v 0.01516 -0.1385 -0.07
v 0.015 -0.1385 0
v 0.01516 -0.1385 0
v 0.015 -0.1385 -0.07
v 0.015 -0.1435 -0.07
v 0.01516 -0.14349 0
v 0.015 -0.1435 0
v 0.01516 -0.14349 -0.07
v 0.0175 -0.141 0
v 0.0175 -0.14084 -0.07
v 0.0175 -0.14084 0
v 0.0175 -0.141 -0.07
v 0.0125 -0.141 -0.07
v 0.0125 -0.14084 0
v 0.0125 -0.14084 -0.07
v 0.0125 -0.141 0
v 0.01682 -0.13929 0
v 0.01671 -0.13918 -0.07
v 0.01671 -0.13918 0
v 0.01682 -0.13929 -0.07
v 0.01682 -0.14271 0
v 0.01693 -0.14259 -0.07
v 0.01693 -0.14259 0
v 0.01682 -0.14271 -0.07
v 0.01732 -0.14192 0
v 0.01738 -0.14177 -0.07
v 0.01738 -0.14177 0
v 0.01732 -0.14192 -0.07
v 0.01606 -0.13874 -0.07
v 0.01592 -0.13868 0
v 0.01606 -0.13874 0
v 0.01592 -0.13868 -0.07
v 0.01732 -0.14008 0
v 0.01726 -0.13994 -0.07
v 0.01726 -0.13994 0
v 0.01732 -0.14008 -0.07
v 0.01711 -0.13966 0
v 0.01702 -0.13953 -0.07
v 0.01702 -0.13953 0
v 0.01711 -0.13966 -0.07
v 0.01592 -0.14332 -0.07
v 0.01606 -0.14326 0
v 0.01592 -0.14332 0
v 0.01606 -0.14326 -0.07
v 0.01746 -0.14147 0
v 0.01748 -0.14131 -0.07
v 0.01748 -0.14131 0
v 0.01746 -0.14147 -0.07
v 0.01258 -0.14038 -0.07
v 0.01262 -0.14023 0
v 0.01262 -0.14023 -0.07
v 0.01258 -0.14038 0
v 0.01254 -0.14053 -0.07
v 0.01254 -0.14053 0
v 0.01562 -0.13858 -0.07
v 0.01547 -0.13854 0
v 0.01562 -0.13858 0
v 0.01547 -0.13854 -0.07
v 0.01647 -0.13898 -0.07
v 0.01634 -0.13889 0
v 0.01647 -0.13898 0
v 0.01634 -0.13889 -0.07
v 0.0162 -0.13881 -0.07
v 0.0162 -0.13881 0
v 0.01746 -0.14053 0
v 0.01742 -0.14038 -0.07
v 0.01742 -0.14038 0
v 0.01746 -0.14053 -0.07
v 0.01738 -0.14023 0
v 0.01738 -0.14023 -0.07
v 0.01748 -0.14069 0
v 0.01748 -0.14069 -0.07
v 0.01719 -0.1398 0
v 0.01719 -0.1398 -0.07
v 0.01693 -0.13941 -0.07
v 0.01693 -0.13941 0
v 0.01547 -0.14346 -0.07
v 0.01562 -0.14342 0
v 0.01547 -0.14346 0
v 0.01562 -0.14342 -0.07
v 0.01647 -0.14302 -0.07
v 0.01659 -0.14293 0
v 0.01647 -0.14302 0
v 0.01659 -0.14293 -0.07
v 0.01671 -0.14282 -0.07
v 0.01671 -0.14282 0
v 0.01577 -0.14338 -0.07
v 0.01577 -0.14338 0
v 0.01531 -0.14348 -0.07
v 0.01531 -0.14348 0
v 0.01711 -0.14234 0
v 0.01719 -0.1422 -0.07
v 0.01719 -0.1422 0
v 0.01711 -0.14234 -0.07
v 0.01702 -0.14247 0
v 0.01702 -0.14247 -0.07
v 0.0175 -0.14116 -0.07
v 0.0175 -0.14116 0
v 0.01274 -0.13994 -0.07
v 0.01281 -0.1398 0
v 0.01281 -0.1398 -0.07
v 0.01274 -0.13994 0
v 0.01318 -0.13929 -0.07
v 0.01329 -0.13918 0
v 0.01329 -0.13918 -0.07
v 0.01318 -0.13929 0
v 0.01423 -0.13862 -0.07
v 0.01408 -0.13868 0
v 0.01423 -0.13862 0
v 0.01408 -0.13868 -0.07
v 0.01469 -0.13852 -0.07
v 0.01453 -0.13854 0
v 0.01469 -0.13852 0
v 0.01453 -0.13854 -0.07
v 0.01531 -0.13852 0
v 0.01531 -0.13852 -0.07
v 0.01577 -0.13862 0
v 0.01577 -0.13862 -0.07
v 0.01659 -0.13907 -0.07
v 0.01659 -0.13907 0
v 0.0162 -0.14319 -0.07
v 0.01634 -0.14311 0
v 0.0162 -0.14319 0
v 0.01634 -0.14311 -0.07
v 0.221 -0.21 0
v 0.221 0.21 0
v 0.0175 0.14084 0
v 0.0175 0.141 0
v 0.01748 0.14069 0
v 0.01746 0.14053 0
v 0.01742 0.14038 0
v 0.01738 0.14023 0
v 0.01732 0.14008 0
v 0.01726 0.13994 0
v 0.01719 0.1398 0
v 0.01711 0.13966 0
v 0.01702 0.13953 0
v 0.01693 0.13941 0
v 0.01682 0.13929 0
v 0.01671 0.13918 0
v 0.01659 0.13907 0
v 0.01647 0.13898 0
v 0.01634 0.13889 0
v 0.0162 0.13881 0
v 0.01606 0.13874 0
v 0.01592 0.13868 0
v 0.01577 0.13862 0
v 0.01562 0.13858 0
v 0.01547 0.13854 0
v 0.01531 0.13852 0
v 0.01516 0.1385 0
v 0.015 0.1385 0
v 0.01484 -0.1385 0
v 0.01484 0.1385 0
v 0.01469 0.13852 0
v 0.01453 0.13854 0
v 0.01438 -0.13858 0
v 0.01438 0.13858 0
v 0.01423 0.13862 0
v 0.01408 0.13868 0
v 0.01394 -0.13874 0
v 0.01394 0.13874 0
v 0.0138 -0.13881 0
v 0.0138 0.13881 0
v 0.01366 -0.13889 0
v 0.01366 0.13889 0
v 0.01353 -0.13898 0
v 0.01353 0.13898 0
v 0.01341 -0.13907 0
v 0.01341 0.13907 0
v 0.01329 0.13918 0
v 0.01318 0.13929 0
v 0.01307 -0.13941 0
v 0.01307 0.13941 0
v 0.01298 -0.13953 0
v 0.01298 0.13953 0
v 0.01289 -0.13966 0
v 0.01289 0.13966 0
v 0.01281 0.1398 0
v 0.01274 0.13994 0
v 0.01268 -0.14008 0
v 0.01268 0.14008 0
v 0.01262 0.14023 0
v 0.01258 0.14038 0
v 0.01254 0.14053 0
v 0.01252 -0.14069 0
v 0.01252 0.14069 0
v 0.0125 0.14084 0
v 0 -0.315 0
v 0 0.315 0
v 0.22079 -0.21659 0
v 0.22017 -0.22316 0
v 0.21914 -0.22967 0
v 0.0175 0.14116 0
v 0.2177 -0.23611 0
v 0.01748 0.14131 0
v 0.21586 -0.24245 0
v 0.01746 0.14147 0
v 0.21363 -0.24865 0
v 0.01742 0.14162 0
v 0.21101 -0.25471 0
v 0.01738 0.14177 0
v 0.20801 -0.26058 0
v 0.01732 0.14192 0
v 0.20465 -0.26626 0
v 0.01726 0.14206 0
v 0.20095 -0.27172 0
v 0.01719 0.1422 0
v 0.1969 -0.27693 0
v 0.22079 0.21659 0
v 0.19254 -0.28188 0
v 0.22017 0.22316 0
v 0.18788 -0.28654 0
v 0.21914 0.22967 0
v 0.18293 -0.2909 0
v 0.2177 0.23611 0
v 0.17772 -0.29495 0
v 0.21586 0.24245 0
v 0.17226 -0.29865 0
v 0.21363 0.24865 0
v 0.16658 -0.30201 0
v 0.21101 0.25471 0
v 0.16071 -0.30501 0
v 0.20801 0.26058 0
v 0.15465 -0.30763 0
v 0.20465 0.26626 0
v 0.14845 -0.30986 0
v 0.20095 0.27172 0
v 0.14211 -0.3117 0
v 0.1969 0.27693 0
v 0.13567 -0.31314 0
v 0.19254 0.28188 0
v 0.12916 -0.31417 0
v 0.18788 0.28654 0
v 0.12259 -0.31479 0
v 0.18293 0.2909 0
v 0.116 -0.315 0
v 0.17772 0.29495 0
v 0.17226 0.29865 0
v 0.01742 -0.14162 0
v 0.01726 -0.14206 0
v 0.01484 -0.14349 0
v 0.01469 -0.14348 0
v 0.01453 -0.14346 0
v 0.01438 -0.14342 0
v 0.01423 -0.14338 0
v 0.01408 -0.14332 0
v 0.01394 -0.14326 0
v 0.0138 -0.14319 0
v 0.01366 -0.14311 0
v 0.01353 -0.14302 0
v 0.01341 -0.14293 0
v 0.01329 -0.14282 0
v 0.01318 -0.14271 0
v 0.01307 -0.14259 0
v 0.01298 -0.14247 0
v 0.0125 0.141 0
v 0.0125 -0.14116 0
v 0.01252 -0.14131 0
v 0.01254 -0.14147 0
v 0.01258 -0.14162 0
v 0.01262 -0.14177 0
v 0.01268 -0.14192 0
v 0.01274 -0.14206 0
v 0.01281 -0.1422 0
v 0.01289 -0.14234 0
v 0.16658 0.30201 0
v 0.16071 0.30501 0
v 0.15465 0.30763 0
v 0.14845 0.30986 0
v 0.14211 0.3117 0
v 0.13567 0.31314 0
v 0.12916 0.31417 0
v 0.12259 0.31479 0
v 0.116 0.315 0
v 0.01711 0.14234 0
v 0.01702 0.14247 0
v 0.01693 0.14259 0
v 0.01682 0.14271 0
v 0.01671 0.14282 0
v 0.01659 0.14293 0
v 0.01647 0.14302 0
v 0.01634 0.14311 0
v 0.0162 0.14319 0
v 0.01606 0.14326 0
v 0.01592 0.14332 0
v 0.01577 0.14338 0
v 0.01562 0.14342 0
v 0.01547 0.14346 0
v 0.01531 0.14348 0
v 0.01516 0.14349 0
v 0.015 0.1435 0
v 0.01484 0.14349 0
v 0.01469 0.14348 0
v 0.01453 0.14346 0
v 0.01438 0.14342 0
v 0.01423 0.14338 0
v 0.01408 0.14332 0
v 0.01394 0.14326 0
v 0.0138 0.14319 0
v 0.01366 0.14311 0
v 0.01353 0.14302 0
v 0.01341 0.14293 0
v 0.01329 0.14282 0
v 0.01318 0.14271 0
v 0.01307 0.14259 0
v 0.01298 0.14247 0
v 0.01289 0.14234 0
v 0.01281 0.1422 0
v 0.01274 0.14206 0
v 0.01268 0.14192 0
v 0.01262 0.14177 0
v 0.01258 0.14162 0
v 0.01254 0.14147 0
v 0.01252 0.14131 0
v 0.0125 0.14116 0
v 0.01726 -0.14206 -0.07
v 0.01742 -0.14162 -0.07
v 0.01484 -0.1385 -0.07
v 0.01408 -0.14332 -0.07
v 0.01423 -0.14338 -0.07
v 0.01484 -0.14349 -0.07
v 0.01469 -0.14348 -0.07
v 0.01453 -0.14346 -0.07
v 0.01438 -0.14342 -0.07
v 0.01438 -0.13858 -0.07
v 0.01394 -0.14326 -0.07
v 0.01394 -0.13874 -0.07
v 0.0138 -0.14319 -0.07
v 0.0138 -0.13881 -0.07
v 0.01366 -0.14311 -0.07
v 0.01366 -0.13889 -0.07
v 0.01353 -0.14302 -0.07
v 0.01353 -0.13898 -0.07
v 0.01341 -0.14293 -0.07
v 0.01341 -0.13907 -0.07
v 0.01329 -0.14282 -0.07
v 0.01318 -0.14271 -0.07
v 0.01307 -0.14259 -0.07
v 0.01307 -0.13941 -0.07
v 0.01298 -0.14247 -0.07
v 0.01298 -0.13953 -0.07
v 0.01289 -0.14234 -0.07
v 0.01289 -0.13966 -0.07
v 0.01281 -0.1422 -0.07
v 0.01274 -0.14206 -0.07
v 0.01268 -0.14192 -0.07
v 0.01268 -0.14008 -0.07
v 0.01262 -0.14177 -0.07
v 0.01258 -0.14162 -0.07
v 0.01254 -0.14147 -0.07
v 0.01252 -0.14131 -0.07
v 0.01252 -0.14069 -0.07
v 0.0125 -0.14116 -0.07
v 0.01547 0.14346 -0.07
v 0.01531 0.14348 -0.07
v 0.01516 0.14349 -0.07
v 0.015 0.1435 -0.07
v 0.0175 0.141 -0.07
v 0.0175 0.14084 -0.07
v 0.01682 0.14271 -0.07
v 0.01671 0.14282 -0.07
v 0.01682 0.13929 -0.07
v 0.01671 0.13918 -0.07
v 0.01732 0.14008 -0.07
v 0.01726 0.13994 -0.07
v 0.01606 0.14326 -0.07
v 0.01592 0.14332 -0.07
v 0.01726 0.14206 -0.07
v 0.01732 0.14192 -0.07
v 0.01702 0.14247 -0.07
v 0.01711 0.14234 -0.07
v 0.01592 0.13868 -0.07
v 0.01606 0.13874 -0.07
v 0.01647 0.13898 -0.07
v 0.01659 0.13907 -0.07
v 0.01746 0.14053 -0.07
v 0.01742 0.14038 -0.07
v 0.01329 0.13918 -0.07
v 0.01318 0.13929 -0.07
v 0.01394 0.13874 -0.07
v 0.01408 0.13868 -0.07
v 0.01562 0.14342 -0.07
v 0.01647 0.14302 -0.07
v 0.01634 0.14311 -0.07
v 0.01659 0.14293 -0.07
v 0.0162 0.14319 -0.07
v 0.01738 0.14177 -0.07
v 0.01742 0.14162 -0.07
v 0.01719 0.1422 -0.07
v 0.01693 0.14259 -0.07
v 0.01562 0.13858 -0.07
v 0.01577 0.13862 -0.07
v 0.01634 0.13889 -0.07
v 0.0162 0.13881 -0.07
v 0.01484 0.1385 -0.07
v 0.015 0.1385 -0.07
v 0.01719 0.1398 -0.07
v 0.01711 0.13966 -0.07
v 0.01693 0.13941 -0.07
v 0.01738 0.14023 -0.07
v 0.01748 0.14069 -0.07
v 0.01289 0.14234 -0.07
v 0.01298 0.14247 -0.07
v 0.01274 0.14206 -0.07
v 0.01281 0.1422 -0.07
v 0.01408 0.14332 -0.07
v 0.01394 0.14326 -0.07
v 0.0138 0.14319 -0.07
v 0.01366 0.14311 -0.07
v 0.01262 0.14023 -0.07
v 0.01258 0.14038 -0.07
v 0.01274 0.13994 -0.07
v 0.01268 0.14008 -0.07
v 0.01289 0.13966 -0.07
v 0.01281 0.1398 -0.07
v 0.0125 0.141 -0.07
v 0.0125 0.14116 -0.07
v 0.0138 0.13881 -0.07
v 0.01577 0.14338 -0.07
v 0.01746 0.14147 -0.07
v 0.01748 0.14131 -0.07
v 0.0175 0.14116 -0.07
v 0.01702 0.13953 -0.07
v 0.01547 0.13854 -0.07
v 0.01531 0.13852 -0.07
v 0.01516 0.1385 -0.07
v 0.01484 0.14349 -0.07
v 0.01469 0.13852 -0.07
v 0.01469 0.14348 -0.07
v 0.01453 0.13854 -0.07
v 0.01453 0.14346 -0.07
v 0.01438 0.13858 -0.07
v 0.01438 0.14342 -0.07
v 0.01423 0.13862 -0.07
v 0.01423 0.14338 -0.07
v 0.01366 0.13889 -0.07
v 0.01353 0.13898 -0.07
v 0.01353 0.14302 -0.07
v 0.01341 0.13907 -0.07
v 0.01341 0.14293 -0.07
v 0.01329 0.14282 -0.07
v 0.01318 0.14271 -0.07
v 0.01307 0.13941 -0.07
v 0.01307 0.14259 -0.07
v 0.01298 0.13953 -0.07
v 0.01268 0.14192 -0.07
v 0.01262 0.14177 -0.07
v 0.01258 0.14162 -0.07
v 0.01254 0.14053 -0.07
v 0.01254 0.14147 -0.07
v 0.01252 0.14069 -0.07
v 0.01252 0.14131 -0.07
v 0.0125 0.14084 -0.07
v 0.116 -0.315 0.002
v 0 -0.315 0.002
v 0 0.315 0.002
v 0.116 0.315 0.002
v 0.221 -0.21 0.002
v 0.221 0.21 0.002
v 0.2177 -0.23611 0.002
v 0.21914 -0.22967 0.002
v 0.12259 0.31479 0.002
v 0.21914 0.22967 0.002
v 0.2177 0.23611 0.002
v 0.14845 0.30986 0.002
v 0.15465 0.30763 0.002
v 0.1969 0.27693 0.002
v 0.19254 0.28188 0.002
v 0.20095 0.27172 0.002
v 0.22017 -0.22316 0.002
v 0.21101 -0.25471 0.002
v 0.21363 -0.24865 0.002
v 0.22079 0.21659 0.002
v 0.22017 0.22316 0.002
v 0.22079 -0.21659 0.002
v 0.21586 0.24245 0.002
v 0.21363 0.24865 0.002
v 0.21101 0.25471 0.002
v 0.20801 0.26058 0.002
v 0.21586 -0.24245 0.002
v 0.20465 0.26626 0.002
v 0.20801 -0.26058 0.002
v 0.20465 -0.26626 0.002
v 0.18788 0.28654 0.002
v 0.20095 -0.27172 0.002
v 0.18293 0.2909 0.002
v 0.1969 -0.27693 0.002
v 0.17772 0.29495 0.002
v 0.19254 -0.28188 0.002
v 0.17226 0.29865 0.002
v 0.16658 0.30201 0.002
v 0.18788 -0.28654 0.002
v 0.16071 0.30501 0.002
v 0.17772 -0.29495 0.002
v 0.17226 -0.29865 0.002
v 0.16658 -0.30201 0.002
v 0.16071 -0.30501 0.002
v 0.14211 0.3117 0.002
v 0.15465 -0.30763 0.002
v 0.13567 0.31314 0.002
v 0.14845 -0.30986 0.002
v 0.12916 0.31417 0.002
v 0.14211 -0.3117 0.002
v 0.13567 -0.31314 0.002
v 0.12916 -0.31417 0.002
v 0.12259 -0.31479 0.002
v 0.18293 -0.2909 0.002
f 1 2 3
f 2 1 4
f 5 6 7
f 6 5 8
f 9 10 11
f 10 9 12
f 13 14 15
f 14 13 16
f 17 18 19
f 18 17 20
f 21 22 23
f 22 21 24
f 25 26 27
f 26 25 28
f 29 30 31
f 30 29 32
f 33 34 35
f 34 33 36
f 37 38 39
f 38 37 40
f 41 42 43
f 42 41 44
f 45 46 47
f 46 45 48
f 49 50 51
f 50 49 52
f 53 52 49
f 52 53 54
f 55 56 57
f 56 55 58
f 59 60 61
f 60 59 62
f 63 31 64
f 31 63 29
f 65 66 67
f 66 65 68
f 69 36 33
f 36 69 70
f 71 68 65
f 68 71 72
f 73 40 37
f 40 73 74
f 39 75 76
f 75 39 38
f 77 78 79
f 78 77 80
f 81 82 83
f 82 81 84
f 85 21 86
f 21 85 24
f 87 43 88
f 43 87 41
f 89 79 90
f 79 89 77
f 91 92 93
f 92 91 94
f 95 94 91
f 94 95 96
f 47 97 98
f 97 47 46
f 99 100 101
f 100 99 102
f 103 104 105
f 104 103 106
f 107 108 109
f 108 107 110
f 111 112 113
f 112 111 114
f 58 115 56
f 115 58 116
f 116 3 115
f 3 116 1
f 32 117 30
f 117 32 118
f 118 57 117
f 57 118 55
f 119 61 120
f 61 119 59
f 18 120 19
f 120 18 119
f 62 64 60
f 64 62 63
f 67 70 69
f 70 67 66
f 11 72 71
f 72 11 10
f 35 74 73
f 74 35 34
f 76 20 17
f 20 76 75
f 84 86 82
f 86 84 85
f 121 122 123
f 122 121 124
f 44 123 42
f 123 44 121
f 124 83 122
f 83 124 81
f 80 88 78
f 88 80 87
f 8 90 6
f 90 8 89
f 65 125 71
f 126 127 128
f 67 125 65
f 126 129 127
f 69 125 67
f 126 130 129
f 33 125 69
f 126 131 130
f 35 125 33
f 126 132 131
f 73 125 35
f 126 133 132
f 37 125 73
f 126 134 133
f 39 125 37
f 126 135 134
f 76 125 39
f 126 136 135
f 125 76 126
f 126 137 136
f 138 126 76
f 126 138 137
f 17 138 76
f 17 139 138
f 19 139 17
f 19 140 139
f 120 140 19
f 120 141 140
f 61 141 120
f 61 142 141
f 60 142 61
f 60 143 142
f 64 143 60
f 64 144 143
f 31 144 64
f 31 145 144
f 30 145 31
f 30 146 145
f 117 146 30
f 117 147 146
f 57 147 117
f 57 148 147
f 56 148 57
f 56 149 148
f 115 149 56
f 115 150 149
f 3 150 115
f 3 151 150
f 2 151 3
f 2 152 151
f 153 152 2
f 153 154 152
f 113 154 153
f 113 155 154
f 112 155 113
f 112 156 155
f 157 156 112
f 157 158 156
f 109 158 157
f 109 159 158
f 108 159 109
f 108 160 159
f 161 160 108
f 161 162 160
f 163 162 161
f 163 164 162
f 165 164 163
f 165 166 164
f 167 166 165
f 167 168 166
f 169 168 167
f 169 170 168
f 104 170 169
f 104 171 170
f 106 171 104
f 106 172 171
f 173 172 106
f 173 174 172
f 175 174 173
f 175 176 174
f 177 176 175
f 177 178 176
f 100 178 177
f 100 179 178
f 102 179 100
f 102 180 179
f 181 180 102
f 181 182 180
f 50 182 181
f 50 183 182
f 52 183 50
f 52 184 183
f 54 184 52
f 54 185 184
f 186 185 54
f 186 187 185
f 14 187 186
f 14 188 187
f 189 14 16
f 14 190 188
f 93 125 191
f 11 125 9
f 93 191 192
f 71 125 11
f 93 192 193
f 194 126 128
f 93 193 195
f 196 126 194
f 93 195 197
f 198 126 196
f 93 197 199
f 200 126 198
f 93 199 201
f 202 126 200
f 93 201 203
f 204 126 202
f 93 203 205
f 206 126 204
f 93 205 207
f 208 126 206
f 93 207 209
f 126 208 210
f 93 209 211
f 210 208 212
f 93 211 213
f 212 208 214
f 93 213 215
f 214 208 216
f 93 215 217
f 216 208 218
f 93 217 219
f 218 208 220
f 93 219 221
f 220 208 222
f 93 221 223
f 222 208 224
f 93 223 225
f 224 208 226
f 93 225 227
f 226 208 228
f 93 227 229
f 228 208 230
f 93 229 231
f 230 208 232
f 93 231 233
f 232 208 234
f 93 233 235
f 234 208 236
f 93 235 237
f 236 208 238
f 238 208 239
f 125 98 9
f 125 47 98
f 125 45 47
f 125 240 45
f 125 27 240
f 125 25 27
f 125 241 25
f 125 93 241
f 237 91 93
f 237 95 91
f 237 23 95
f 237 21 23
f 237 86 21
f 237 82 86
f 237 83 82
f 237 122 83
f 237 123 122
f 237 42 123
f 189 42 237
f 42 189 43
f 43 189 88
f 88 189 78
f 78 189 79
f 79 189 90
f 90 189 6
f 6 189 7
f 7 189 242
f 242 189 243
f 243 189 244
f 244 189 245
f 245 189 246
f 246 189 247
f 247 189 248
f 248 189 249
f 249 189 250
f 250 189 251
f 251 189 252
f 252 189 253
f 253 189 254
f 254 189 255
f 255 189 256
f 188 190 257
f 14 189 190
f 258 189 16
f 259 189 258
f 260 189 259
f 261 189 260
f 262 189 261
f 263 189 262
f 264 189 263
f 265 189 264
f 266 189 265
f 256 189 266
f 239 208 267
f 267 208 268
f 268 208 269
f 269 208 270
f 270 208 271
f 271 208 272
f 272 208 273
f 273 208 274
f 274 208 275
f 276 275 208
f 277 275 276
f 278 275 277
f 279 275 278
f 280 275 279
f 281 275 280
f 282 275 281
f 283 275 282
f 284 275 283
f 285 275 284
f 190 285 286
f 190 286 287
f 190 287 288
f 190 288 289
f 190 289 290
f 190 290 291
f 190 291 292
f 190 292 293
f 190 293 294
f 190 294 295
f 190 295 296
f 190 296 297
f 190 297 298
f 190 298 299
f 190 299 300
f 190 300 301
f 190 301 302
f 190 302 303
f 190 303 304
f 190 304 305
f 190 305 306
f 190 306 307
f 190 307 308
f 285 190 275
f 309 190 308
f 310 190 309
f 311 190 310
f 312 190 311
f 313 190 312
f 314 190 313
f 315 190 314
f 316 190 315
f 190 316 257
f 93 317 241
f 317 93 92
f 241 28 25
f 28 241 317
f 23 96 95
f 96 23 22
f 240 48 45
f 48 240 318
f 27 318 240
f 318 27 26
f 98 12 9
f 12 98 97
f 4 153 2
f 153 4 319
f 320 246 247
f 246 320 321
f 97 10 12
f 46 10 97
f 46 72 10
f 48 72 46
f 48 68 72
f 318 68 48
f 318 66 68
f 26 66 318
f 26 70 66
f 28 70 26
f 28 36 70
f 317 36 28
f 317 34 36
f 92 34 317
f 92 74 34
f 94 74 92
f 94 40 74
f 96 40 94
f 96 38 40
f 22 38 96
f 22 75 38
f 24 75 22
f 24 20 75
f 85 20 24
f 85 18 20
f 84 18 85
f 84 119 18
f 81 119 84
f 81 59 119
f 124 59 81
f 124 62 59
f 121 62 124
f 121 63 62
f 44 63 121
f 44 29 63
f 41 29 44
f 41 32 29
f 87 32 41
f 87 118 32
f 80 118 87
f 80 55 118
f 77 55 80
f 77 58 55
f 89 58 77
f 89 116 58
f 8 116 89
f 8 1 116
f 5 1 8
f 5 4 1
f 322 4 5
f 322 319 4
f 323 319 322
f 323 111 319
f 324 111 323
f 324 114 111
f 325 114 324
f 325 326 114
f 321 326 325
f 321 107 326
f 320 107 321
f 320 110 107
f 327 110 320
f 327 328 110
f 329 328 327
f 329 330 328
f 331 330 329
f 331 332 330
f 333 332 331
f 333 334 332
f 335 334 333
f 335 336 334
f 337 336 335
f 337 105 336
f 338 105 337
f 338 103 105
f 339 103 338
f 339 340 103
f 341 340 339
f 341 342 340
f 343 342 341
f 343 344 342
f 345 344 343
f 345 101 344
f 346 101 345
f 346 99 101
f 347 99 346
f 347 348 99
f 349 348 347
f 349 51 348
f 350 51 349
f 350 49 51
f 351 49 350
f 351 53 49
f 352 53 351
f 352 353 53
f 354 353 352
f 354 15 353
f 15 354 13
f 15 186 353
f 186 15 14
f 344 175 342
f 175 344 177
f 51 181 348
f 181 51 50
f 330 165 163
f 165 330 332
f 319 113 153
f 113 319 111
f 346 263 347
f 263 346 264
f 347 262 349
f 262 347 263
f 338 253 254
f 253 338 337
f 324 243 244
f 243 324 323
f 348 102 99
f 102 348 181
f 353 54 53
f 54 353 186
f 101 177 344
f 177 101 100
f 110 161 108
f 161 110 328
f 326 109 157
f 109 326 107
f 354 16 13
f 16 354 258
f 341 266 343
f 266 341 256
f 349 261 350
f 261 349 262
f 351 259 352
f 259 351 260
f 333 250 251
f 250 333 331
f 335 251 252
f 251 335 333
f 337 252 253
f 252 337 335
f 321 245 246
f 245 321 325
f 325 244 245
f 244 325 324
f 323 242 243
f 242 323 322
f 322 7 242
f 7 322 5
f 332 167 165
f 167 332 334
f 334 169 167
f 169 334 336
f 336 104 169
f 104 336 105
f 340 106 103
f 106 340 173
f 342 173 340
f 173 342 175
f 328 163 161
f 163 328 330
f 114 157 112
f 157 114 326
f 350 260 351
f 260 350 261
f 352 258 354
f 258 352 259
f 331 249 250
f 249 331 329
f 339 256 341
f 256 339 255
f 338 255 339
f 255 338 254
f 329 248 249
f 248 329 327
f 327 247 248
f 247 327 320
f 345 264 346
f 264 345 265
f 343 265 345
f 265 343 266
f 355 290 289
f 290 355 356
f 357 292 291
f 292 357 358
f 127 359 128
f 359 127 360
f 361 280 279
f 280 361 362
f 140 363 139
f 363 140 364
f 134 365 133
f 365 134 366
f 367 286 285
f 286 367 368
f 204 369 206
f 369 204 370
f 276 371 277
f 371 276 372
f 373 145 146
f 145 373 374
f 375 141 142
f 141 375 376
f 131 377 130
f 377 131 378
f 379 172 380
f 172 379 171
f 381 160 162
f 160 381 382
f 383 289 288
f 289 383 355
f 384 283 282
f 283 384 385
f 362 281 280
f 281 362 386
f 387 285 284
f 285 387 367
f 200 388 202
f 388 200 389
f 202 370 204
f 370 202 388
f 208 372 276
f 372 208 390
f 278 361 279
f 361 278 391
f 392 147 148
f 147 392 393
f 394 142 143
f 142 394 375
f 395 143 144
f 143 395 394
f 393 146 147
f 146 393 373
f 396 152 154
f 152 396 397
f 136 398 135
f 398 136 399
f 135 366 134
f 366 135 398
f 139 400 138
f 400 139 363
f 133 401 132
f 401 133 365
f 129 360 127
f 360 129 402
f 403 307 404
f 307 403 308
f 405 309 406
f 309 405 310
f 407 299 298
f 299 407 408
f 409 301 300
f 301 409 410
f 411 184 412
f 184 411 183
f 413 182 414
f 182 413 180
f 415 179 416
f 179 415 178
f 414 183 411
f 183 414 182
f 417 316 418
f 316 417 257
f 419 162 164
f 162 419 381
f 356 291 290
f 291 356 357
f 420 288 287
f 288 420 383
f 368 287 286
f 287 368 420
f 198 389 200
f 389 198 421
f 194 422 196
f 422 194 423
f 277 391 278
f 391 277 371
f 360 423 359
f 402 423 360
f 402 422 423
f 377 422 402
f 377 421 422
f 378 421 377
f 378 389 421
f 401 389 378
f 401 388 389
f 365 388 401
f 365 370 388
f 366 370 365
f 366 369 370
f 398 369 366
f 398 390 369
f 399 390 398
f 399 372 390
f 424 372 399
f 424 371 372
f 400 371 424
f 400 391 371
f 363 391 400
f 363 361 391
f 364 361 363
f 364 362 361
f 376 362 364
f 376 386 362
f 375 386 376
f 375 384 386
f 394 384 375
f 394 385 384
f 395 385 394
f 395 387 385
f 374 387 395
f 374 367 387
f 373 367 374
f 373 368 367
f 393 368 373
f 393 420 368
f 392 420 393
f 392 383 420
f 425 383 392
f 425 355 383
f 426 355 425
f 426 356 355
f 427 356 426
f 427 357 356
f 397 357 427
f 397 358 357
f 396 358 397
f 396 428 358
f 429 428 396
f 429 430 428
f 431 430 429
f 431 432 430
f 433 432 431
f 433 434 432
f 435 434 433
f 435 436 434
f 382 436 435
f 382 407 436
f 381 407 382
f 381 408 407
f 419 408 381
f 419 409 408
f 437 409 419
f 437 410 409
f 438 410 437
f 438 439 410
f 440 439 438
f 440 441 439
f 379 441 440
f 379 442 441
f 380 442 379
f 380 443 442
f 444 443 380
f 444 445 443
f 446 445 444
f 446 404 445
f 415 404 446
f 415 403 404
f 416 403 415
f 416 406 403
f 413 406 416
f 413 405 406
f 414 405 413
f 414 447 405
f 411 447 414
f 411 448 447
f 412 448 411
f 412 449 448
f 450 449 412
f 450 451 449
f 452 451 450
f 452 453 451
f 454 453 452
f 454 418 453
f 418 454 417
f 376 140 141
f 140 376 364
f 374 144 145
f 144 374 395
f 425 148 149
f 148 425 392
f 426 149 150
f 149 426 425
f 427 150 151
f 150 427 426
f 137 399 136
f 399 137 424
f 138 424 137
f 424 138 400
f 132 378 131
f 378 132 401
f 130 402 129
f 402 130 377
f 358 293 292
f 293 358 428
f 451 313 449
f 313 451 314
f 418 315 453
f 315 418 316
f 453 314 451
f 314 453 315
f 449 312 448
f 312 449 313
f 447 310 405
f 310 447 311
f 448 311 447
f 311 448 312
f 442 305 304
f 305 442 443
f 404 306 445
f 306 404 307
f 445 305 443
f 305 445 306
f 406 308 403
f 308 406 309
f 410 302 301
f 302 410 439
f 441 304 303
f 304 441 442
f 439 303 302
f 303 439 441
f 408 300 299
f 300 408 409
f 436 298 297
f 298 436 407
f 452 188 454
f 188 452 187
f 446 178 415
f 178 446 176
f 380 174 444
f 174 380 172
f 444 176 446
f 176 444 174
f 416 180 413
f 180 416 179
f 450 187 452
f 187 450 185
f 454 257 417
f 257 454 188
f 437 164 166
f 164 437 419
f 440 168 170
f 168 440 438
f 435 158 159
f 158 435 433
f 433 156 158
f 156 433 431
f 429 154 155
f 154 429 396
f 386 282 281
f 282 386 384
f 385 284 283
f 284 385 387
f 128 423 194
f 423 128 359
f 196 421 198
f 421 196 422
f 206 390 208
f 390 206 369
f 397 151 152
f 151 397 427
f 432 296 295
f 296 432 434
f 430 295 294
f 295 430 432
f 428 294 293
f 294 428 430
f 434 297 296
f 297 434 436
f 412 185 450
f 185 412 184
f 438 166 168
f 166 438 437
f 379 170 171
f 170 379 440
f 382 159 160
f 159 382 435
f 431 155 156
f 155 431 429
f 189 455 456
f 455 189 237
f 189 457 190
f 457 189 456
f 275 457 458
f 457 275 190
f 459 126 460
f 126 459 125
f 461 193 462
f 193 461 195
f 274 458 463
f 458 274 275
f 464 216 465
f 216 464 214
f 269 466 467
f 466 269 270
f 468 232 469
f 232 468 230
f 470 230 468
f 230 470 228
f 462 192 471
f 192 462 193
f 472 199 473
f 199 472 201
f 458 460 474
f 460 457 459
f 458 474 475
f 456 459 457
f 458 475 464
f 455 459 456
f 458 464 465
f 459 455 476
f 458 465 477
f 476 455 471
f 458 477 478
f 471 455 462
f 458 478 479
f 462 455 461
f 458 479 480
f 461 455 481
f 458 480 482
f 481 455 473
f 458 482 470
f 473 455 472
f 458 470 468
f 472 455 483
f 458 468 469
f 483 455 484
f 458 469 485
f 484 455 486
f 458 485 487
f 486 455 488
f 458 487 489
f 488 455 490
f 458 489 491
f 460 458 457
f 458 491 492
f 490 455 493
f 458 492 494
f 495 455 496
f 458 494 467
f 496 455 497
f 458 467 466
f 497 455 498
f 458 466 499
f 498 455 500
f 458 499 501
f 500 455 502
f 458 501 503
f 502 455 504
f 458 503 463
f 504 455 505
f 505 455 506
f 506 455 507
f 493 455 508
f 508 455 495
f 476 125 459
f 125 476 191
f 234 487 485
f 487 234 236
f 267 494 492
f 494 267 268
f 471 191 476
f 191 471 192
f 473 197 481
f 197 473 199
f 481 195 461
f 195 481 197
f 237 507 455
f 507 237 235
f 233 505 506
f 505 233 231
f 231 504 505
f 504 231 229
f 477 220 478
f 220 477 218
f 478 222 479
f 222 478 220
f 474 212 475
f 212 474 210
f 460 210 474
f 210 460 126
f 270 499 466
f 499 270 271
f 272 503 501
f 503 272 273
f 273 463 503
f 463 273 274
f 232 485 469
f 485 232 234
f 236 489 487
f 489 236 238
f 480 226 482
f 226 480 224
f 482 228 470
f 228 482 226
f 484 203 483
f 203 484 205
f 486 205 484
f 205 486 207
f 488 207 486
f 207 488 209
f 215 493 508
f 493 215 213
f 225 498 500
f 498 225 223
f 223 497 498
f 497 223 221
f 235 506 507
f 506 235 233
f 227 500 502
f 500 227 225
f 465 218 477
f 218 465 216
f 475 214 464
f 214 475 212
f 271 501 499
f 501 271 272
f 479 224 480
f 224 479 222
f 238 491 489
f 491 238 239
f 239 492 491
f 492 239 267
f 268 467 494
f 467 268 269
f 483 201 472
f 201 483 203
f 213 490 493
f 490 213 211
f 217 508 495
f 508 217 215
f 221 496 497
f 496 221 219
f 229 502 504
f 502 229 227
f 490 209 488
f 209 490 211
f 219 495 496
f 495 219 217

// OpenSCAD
$fn=100;

mirror([-1, 1, 0]) scale(.001) union() {
    hull() {
        translate([0, 5, 1]) cube(size=[630, 10, 2], center=true);
        for(i=[-1, 1]) {
            translate([i*(630/2-105), 221-105, 0]) cylinder(r=105, h=2);
        }
    }

    for(i=[-1, 1]) {
        translate([i*141, 15, -70]) cylinder(r=2.5, h=70);
    }
}
